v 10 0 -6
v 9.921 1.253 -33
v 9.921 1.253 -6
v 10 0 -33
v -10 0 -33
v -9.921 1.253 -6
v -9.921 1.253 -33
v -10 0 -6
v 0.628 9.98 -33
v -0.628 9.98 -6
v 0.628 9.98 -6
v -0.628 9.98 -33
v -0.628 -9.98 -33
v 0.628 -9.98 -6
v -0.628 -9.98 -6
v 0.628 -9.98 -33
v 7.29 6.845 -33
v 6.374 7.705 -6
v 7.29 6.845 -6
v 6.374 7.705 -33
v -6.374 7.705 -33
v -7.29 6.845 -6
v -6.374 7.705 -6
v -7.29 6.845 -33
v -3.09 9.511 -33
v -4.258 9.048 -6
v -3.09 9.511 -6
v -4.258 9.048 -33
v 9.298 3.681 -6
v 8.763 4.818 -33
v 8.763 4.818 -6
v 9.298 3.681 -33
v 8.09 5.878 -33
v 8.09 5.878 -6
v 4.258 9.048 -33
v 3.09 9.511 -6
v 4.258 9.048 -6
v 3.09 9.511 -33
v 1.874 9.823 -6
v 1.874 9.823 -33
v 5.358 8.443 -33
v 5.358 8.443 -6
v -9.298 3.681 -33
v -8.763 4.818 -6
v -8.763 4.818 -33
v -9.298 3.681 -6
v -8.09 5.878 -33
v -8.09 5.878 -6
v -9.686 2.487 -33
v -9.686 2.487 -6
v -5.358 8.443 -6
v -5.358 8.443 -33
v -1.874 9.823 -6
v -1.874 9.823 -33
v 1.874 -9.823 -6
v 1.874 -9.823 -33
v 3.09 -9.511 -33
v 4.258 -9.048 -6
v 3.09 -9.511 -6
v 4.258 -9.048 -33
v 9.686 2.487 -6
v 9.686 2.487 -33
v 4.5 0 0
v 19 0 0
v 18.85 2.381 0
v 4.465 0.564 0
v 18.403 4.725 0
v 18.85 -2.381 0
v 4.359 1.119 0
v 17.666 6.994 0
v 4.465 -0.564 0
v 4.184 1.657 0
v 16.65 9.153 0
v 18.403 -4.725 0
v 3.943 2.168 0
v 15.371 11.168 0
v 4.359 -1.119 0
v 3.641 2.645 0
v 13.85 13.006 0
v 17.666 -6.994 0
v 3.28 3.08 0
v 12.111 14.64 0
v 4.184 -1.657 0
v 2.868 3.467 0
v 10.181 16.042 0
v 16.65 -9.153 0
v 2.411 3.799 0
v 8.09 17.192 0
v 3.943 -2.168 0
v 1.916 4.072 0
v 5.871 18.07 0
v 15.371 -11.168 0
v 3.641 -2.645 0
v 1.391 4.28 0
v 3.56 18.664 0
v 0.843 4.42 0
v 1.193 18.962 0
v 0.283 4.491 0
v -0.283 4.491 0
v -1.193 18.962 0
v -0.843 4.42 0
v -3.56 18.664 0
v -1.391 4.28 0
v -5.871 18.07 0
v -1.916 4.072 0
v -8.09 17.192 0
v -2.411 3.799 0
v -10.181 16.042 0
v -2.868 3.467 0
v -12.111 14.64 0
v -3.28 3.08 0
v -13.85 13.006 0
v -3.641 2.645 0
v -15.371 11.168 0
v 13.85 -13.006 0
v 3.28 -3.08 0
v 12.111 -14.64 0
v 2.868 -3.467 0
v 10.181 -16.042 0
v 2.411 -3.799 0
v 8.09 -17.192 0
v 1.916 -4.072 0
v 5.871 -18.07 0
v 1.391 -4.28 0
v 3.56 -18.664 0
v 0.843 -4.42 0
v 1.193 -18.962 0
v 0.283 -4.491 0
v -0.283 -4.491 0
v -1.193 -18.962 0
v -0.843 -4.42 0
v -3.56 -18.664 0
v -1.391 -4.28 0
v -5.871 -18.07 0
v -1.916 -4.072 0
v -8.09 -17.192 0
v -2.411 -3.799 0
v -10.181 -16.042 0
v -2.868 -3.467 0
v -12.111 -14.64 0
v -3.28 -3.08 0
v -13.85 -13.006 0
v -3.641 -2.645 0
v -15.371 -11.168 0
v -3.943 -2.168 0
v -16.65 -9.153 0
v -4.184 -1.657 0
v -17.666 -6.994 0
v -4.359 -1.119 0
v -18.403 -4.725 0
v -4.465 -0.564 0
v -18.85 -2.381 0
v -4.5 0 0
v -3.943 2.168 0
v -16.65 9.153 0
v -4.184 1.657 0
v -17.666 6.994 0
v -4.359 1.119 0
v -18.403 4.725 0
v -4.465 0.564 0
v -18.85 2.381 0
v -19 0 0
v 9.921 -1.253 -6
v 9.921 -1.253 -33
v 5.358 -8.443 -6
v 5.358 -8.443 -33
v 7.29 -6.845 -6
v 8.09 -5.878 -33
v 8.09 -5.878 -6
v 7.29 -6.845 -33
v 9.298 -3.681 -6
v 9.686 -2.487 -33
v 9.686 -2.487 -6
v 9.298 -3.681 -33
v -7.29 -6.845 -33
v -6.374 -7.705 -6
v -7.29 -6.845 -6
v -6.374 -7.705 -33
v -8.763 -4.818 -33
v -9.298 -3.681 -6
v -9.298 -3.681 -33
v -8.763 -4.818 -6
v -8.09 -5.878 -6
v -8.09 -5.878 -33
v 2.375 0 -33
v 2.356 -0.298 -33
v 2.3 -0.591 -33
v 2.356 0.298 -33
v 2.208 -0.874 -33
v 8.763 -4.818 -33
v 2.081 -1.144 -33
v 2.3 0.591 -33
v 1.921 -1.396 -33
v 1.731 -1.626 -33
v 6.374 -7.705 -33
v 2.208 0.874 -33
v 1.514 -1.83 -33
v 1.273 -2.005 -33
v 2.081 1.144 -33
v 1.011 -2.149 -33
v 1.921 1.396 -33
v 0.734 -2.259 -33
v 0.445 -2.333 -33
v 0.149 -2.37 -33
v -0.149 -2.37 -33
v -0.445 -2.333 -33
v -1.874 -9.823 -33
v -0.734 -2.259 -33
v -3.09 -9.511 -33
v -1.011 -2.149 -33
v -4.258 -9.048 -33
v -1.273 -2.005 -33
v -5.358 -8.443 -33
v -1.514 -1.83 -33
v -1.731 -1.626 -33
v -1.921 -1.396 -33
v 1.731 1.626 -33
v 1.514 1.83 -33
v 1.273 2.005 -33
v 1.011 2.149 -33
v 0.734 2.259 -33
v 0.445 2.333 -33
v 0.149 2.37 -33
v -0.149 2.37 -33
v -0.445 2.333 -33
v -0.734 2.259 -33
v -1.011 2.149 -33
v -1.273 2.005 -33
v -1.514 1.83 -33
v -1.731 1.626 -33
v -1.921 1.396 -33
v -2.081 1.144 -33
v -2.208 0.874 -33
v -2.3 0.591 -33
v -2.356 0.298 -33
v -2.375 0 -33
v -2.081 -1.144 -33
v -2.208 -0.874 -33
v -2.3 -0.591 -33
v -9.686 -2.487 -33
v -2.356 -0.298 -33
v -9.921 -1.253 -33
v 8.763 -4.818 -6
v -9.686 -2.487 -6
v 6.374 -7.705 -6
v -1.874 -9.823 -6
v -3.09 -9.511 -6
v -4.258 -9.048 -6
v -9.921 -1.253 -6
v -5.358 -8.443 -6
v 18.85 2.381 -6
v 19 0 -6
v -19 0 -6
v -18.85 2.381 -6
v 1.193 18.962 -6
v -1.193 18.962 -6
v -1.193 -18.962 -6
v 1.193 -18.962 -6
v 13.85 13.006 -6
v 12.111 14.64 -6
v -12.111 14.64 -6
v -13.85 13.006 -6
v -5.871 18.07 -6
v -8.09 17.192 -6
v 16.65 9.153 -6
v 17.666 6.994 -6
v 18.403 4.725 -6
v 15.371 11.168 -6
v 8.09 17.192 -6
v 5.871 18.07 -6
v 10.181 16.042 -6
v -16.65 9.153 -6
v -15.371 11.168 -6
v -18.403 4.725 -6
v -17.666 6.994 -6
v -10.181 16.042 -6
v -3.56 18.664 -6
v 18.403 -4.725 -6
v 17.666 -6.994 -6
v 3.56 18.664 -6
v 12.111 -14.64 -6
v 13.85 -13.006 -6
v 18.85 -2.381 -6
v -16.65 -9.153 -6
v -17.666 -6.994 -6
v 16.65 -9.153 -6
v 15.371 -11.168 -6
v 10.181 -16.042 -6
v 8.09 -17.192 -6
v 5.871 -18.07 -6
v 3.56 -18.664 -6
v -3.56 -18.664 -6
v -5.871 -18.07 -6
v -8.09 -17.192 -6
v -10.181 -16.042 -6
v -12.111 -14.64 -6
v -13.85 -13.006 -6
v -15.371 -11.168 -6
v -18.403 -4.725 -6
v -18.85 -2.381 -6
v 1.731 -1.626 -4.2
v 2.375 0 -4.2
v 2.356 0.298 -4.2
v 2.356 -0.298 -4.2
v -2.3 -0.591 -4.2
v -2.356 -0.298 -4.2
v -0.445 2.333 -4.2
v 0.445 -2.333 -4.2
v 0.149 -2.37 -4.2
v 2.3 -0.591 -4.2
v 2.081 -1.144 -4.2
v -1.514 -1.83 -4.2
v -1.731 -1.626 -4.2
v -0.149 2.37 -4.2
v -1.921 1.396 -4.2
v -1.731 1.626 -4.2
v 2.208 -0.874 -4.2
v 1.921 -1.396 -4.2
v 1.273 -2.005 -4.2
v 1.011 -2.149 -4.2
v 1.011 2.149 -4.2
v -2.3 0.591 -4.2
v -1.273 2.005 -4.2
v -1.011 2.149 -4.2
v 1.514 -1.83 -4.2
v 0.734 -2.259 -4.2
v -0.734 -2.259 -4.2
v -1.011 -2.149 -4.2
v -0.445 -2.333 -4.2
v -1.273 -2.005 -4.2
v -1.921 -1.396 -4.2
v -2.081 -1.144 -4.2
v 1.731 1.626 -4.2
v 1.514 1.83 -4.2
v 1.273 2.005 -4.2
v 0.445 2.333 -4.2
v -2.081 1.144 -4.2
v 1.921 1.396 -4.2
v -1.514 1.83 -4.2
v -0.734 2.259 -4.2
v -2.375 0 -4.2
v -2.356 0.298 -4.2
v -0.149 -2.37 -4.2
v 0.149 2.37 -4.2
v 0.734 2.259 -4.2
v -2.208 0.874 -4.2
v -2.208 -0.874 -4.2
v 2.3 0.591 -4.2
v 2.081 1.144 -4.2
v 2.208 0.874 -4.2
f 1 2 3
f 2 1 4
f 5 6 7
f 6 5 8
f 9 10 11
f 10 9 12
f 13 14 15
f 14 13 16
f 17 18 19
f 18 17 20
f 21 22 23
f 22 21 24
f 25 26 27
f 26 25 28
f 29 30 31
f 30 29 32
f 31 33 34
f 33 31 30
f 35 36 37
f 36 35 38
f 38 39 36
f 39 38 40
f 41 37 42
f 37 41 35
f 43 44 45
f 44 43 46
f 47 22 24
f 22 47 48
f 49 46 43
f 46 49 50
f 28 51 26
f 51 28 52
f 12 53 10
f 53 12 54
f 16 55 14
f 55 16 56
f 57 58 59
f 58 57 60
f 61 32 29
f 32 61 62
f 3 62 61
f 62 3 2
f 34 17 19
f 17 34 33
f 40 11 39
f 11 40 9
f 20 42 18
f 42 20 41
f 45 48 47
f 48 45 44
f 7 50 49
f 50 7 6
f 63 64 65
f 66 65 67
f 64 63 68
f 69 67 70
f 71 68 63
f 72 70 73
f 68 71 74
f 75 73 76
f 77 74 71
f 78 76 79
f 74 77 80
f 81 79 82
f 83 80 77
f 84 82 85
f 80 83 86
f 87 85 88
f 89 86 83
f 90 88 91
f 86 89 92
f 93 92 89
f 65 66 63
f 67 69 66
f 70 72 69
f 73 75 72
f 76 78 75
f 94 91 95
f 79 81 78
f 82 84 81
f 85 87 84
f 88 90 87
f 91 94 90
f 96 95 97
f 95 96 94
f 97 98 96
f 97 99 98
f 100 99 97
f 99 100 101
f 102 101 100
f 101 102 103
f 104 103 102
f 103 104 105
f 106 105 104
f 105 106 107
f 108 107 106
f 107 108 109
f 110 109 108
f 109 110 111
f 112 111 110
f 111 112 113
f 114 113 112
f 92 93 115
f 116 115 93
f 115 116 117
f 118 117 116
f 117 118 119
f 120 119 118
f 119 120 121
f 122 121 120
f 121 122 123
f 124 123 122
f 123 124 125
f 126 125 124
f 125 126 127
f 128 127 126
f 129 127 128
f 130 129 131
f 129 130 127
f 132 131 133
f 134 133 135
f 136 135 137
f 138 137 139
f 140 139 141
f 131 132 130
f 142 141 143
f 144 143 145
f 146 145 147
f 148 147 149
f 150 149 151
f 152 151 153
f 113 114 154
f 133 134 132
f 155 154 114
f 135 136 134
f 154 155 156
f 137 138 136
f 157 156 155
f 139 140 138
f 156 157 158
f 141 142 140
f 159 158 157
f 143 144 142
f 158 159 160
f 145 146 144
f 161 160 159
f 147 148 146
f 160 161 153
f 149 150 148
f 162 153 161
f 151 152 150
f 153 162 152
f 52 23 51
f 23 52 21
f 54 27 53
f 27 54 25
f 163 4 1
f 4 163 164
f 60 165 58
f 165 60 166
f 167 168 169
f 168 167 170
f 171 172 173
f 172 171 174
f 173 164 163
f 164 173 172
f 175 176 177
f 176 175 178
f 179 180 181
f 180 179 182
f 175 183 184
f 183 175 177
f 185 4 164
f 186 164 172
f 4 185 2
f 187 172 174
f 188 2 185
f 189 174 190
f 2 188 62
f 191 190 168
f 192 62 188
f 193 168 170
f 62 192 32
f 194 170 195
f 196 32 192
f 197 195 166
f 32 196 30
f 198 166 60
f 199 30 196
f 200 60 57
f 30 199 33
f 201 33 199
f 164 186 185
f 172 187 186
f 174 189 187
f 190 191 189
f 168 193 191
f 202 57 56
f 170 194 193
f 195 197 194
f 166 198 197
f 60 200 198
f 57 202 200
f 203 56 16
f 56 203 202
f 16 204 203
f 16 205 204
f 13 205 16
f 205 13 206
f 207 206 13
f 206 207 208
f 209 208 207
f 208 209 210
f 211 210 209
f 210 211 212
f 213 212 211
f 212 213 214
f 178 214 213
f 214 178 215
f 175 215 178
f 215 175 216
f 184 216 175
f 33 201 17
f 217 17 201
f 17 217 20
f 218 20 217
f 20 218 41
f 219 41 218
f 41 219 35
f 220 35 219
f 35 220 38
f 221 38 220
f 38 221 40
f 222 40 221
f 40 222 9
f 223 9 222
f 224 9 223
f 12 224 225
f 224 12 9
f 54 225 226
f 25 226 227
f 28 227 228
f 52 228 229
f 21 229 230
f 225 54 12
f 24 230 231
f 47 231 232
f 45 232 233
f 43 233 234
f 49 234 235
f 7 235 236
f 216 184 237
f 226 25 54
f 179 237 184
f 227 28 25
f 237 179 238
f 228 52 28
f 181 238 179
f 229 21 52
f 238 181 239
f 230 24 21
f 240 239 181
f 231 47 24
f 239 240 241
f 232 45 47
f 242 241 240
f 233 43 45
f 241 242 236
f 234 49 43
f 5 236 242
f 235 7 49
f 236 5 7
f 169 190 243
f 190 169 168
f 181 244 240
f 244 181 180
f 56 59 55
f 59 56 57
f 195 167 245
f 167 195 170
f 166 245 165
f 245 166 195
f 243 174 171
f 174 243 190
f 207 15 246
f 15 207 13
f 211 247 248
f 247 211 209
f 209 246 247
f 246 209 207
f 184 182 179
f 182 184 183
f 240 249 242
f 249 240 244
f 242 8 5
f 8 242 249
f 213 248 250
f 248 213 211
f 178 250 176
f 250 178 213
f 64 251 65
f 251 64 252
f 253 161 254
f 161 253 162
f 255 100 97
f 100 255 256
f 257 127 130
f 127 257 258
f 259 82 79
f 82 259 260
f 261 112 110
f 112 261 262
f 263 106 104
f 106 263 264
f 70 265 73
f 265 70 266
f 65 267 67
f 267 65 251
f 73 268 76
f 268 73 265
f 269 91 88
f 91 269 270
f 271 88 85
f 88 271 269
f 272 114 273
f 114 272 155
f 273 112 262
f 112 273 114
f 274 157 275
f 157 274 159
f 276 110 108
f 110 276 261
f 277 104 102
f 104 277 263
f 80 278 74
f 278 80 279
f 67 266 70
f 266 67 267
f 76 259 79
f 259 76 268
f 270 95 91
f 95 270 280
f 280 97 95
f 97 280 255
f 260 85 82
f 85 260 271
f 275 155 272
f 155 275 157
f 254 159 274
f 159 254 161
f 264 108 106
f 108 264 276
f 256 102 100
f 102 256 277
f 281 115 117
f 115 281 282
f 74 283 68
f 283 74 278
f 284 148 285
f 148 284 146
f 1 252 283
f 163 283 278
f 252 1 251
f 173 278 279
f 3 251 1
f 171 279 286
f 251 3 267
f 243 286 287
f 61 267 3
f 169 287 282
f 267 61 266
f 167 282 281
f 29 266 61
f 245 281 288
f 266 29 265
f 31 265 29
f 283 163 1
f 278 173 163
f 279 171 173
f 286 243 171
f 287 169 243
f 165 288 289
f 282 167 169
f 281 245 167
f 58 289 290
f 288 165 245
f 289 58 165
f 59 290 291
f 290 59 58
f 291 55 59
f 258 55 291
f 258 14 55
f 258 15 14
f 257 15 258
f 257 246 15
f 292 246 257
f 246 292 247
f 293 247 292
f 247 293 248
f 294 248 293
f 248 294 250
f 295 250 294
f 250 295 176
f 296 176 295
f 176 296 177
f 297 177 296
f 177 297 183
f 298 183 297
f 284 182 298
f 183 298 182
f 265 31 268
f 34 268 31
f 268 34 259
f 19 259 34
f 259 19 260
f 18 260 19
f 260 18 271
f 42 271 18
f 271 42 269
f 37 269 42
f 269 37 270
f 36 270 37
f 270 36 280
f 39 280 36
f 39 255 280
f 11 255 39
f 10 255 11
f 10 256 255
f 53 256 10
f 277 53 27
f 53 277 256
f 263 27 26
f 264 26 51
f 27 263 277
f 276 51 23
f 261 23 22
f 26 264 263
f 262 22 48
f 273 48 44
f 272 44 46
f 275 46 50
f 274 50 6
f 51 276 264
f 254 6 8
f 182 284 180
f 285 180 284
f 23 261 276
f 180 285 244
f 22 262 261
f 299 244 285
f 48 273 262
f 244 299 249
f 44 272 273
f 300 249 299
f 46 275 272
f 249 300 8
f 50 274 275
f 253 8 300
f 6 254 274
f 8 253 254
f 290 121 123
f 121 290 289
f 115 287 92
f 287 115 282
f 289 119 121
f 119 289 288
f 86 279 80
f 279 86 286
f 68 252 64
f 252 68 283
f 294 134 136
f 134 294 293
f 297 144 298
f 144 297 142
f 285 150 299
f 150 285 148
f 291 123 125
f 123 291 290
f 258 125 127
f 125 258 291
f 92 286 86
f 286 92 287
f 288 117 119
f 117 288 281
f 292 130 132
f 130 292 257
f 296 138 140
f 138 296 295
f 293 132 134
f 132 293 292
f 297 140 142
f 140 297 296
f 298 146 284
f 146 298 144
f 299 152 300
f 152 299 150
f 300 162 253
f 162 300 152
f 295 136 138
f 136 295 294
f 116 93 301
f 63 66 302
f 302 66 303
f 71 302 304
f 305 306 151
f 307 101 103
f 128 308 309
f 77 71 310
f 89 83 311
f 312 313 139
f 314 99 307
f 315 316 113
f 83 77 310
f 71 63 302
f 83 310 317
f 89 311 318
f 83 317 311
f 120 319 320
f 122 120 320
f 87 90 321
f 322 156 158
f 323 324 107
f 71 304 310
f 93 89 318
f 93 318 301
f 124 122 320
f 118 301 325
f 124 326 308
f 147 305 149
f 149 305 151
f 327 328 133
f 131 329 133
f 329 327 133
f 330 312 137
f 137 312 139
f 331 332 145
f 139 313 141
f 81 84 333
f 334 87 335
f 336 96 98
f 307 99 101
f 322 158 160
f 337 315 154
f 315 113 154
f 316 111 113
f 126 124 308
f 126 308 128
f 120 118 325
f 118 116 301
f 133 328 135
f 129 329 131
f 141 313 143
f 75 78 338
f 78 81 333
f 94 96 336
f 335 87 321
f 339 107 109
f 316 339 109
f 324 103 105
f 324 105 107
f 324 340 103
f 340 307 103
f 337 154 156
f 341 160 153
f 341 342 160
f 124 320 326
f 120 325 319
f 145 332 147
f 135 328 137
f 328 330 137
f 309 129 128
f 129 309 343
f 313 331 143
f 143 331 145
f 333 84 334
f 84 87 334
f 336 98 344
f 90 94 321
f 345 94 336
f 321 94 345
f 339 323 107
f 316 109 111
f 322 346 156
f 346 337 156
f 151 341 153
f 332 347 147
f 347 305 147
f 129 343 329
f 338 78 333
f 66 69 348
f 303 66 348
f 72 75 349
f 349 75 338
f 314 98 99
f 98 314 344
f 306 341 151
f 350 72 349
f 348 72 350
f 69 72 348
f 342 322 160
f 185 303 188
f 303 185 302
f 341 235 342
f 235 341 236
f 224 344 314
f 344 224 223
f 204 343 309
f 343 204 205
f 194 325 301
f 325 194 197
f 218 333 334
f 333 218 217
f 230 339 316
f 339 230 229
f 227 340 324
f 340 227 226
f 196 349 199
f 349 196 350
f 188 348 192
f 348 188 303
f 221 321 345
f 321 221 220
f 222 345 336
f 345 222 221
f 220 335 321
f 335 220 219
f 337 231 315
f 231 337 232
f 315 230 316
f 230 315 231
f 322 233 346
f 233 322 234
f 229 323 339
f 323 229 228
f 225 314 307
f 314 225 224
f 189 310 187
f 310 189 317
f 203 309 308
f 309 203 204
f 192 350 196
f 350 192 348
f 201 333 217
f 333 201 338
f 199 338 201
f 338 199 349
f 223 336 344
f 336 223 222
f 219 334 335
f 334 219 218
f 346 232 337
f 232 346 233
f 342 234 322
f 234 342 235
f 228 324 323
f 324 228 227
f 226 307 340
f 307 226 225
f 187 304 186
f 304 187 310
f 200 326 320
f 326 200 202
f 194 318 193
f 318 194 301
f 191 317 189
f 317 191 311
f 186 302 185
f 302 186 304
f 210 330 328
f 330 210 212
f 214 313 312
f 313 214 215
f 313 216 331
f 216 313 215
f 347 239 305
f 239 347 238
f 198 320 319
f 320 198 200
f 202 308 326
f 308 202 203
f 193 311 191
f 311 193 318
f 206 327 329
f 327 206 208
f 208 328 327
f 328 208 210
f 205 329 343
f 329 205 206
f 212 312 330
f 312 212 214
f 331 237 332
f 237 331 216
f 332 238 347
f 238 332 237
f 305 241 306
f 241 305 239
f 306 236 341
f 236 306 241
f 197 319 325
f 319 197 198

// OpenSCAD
$fn = 50;


difference() {
	union() {
		translate(v = [0, 0, -33.0000000000]) {
			cylinder(h = 33, r = 10.0000000000);
		}
		translate(v = [0, 0, -6.0000000000]) {
			cylinder(h = 6, r = 19.0000000000);
		}
	}
	union() {
		translate(v = [0, 0, 0]) {
			rotate(a = [0, 0, 0]) {
				difference() {
					union() {
						#translate(v = [0, 0, -33.0000000000]) {
							cylinder(h = 33, r = 2.2500000000);
						}
						#translate(v = [0, 0, -4.2000000000]) {
							cylinder(h = 4.2000000000, r1 = 2.3750000000, r2 = 4.5000000000);
						}
						#translate(v = [0, 0, -33.0000000000]) {
							cylinder(h = 33, r = 2.3750000000);
						}
						#translate(v = [0, 0, -33.0000000000]) {
							cylinder(h = 33, r = 2.2500000000);
						}
					}
					union();
				}
			}
		}
	}
}
